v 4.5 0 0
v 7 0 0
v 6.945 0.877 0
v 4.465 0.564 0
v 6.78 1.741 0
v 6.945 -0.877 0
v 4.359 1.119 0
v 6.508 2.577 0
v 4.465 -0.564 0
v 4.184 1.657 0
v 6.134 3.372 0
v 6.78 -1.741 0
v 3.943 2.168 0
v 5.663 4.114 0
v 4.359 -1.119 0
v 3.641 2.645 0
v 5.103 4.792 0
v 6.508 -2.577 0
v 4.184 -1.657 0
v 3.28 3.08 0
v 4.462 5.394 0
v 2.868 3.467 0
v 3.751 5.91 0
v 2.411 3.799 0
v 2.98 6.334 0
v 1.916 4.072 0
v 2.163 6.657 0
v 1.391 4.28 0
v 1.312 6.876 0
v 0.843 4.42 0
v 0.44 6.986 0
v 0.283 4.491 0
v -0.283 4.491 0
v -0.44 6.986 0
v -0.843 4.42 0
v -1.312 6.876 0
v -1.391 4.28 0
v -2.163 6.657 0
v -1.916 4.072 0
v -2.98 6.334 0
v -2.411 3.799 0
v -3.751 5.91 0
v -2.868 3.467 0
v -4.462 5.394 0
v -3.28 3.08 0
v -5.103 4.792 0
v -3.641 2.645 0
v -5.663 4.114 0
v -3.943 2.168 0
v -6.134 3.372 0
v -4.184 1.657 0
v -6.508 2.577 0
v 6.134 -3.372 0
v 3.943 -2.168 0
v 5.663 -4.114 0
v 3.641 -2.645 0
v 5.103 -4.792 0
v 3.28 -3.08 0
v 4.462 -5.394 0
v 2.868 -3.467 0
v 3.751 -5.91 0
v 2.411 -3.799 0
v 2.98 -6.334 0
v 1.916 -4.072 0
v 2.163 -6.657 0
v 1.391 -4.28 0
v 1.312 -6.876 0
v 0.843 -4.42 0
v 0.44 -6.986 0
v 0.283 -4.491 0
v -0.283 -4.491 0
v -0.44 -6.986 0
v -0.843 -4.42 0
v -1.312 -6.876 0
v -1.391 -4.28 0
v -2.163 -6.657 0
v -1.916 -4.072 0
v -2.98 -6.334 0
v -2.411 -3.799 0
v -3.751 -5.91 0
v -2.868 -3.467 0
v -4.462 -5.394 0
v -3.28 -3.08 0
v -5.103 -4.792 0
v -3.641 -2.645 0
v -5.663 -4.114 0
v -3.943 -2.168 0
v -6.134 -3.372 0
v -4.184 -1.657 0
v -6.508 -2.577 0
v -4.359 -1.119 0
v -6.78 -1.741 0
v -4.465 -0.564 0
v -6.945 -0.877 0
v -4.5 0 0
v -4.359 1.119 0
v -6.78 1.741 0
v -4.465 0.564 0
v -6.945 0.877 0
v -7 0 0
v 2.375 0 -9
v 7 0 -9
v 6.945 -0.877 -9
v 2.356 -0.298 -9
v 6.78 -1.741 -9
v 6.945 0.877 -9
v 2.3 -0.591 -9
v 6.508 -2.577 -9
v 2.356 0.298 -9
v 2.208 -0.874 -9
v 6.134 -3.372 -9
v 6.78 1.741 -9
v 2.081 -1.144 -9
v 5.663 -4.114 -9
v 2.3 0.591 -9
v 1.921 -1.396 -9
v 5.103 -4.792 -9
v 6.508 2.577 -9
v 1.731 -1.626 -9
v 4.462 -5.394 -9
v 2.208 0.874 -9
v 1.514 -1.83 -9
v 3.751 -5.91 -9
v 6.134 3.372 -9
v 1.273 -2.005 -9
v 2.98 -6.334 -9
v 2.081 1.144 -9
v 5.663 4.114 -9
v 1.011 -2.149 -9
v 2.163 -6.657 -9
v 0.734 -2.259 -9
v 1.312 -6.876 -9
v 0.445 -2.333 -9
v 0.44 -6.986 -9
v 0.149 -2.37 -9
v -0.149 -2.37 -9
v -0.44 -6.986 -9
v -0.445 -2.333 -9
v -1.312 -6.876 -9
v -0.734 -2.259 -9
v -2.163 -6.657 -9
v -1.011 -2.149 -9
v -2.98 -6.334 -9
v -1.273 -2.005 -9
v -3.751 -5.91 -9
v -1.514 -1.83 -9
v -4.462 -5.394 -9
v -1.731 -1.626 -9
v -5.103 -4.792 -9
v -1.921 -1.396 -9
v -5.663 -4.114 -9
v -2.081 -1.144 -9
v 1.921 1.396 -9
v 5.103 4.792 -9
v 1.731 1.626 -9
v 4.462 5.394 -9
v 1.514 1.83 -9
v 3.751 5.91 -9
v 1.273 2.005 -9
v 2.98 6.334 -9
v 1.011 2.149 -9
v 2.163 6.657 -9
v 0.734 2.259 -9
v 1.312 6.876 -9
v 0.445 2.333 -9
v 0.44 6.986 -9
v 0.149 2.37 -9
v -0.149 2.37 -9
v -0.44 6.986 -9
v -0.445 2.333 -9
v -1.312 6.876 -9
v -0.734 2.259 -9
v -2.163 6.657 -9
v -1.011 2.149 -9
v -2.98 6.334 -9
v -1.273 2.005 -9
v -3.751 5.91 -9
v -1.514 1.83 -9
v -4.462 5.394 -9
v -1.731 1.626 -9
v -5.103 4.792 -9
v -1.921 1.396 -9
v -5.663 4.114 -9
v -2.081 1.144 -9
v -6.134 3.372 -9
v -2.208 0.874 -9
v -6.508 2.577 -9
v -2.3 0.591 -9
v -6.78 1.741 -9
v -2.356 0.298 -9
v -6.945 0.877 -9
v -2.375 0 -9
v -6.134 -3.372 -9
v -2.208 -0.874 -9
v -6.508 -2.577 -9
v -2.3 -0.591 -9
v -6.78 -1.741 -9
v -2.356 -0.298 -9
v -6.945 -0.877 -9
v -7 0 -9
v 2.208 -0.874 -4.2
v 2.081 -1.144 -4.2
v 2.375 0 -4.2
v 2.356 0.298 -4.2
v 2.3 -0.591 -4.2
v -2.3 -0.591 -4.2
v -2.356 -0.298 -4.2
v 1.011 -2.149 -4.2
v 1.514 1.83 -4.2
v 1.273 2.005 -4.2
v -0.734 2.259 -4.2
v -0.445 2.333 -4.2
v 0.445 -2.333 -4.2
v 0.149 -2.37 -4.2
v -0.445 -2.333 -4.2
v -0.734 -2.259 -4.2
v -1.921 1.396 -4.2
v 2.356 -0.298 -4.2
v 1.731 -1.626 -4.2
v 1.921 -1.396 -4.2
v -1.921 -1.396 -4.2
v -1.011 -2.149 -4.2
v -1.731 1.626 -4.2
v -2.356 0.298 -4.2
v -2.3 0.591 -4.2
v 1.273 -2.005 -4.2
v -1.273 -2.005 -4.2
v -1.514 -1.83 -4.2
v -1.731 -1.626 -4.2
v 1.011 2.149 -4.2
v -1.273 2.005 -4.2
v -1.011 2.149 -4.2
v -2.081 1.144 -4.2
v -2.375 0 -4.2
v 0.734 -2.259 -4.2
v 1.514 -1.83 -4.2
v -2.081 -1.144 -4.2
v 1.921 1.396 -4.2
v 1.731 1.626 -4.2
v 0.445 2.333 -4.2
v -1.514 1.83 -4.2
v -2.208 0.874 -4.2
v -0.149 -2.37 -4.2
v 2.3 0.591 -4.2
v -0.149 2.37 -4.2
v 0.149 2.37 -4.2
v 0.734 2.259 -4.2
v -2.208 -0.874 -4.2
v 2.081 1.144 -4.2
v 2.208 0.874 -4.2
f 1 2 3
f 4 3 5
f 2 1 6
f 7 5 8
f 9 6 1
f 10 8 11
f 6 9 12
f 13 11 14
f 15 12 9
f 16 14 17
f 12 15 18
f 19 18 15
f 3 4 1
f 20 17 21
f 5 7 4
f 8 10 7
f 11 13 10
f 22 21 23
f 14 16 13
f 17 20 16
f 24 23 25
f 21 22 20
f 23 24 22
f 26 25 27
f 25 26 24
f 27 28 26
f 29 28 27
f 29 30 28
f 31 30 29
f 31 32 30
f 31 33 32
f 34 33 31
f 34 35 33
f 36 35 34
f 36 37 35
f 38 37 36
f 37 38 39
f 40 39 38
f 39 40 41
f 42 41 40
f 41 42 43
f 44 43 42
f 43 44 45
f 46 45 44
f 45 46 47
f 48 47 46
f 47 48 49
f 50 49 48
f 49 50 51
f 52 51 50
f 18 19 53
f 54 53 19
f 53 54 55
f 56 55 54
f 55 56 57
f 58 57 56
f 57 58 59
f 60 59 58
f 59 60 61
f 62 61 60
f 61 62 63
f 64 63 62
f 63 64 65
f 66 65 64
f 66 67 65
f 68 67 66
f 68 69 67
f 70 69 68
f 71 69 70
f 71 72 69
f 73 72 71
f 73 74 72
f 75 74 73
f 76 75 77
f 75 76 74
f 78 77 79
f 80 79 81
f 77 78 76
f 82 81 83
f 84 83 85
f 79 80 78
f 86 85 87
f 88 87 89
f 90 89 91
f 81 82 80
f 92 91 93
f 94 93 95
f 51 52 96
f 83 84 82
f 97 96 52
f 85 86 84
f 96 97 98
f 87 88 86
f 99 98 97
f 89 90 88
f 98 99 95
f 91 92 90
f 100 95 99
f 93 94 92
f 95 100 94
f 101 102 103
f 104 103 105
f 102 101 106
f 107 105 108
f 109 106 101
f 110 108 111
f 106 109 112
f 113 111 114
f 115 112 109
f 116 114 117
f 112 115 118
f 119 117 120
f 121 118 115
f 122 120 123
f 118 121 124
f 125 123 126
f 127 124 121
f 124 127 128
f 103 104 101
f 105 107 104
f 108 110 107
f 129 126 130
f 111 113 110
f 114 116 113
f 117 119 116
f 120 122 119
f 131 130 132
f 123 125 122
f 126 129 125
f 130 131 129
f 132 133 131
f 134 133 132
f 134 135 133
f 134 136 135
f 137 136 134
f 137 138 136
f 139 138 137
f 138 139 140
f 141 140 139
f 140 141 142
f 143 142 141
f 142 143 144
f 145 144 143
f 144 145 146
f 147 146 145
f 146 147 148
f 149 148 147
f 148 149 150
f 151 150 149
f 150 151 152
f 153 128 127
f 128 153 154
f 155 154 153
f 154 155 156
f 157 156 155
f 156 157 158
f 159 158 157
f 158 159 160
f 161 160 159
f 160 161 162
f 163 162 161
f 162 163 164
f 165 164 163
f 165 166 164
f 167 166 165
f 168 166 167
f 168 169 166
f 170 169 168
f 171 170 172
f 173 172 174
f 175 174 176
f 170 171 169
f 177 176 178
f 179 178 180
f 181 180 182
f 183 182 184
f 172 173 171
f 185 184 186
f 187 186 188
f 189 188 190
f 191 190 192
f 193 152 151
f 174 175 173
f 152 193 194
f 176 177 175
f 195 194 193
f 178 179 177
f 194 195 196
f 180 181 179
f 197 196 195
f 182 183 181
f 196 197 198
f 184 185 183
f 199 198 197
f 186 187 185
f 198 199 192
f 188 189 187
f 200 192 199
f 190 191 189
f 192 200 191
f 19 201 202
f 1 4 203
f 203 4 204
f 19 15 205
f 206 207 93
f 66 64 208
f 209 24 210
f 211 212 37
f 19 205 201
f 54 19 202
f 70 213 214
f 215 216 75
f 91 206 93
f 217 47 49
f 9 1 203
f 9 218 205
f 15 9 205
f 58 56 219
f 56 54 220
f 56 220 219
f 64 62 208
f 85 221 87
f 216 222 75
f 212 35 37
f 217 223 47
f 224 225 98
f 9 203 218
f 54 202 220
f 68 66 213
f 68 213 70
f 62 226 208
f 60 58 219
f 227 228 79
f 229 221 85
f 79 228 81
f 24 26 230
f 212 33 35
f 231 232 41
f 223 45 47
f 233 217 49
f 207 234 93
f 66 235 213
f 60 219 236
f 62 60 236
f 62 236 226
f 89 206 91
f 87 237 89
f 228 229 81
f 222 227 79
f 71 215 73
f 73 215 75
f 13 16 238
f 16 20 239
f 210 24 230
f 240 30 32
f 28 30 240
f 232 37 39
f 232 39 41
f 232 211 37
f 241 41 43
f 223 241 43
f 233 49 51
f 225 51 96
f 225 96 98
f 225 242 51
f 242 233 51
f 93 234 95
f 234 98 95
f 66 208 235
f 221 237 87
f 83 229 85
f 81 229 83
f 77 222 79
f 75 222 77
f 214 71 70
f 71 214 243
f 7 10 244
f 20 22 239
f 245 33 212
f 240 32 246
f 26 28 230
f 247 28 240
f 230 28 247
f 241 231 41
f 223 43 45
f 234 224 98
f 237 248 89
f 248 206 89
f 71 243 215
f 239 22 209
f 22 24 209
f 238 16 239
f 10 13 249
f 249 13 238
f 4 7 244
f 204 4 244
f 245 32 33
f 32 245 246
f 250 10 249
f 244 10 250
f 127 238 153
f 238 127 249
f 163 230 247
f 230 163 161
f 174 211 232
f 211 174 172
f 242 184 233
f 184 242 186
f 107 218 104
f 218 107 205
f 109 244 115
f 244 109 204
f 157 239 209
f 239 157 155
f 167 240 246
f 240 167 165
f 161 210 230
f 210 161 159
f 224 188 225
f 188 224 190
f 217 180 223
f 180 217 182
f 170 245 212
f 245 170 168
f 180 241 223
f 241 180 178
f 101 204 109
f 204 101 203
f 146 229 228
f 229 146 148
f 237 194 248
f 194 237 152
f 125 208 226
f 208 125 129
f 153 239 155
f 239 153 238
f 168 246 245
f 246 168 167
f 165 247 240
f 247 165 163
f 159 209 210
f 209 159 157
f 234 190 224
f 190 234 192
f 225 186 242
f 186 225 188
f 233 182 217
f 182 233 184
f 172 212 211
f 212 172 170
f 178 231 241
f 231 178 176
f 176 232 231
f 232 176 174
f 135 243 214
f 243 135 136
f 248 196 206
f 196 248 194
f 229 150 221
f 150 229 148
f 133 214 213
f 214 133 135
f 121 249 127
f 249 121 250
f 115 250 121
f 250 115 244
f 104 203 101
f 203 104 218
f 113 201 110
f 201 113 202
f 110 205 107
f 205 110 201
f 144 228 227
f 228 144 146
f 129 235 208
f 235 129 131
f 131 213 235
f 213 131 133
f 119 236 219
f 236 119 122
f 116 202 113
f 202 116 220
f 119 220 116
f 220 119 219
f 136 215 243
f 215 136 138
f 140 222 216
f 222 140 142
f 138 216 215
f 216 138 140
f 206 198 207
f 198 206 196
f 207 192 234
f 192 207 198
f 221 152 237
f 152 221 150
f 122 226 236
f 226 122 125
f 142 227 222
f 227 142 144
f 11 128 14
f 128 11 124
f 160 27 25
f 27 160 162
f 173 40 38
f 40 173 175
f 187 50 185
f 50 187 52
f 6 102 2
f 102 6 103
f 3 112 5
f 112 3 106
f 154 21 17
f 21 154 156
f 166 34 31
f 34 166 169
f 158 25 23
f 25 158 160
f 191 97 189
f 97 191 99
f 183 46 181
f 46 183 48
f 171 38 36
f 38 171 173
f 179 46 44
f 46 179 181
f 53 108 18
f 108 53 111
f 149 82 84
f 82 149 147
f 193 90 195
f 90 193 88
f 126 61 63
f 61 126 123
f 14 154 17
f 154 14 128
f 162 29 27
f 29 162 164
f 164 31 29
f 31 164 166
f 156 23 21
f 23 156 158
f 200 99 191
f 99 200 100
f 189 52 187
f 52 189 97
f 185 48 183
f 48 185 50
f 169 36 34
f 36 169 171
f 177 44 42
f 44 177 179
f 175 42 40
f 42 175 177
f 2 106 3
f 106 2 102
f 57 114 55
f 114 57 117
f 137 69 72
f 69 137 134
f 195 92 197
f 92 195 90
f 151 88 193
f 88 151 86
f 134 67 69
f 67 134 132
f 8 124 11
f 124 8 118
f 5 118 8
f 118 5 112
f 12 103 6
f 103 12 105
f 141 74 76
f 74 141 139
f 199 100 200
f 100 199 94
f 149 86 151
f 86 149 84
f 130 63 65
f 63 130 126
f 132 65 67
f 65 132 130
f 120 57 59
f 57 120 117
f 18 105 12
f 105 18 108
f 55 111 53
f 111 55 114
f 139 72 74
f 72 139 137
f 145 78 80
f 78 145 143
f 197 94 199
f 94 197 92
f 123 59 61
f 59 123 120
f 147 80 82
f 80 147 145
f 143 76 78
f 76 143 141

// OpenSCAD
$fn = 50;


difference() {
	union() {
		translate(v = [0, 0, -9.0000000000]) {
			cylinder(h = 9, r = 7.0000000000);
		}
		cylinder(h = 0, r = 16.0000000000);
	}
	union() {
		translate(v = [0, 0, 0]) {
			rotate(a = [0, 0, 0]) {
				difference() {
					union() {
						#translate(v = [0, 0, -9.0000000000]) {
							cylinder(h = 9, r = 2.2500000000);
						}
						#translate(v = [0, 0, -4.2000000000]) {
							cylinder(h = 4.2000000000, r1 = 2.3750000000, r2 = 4.5000000000);
						}
						#translate(v = [0, 0, -9.0000000000]) {
							cylinder(h = 9, r = 2.3750000000);
						}
						#translate(v = [0, 0, -9.0000000000]) {
							cylinder(h = 9, r = 2.2500000000);
						}
					}
					union();
				}
			}
		}
	}
}
